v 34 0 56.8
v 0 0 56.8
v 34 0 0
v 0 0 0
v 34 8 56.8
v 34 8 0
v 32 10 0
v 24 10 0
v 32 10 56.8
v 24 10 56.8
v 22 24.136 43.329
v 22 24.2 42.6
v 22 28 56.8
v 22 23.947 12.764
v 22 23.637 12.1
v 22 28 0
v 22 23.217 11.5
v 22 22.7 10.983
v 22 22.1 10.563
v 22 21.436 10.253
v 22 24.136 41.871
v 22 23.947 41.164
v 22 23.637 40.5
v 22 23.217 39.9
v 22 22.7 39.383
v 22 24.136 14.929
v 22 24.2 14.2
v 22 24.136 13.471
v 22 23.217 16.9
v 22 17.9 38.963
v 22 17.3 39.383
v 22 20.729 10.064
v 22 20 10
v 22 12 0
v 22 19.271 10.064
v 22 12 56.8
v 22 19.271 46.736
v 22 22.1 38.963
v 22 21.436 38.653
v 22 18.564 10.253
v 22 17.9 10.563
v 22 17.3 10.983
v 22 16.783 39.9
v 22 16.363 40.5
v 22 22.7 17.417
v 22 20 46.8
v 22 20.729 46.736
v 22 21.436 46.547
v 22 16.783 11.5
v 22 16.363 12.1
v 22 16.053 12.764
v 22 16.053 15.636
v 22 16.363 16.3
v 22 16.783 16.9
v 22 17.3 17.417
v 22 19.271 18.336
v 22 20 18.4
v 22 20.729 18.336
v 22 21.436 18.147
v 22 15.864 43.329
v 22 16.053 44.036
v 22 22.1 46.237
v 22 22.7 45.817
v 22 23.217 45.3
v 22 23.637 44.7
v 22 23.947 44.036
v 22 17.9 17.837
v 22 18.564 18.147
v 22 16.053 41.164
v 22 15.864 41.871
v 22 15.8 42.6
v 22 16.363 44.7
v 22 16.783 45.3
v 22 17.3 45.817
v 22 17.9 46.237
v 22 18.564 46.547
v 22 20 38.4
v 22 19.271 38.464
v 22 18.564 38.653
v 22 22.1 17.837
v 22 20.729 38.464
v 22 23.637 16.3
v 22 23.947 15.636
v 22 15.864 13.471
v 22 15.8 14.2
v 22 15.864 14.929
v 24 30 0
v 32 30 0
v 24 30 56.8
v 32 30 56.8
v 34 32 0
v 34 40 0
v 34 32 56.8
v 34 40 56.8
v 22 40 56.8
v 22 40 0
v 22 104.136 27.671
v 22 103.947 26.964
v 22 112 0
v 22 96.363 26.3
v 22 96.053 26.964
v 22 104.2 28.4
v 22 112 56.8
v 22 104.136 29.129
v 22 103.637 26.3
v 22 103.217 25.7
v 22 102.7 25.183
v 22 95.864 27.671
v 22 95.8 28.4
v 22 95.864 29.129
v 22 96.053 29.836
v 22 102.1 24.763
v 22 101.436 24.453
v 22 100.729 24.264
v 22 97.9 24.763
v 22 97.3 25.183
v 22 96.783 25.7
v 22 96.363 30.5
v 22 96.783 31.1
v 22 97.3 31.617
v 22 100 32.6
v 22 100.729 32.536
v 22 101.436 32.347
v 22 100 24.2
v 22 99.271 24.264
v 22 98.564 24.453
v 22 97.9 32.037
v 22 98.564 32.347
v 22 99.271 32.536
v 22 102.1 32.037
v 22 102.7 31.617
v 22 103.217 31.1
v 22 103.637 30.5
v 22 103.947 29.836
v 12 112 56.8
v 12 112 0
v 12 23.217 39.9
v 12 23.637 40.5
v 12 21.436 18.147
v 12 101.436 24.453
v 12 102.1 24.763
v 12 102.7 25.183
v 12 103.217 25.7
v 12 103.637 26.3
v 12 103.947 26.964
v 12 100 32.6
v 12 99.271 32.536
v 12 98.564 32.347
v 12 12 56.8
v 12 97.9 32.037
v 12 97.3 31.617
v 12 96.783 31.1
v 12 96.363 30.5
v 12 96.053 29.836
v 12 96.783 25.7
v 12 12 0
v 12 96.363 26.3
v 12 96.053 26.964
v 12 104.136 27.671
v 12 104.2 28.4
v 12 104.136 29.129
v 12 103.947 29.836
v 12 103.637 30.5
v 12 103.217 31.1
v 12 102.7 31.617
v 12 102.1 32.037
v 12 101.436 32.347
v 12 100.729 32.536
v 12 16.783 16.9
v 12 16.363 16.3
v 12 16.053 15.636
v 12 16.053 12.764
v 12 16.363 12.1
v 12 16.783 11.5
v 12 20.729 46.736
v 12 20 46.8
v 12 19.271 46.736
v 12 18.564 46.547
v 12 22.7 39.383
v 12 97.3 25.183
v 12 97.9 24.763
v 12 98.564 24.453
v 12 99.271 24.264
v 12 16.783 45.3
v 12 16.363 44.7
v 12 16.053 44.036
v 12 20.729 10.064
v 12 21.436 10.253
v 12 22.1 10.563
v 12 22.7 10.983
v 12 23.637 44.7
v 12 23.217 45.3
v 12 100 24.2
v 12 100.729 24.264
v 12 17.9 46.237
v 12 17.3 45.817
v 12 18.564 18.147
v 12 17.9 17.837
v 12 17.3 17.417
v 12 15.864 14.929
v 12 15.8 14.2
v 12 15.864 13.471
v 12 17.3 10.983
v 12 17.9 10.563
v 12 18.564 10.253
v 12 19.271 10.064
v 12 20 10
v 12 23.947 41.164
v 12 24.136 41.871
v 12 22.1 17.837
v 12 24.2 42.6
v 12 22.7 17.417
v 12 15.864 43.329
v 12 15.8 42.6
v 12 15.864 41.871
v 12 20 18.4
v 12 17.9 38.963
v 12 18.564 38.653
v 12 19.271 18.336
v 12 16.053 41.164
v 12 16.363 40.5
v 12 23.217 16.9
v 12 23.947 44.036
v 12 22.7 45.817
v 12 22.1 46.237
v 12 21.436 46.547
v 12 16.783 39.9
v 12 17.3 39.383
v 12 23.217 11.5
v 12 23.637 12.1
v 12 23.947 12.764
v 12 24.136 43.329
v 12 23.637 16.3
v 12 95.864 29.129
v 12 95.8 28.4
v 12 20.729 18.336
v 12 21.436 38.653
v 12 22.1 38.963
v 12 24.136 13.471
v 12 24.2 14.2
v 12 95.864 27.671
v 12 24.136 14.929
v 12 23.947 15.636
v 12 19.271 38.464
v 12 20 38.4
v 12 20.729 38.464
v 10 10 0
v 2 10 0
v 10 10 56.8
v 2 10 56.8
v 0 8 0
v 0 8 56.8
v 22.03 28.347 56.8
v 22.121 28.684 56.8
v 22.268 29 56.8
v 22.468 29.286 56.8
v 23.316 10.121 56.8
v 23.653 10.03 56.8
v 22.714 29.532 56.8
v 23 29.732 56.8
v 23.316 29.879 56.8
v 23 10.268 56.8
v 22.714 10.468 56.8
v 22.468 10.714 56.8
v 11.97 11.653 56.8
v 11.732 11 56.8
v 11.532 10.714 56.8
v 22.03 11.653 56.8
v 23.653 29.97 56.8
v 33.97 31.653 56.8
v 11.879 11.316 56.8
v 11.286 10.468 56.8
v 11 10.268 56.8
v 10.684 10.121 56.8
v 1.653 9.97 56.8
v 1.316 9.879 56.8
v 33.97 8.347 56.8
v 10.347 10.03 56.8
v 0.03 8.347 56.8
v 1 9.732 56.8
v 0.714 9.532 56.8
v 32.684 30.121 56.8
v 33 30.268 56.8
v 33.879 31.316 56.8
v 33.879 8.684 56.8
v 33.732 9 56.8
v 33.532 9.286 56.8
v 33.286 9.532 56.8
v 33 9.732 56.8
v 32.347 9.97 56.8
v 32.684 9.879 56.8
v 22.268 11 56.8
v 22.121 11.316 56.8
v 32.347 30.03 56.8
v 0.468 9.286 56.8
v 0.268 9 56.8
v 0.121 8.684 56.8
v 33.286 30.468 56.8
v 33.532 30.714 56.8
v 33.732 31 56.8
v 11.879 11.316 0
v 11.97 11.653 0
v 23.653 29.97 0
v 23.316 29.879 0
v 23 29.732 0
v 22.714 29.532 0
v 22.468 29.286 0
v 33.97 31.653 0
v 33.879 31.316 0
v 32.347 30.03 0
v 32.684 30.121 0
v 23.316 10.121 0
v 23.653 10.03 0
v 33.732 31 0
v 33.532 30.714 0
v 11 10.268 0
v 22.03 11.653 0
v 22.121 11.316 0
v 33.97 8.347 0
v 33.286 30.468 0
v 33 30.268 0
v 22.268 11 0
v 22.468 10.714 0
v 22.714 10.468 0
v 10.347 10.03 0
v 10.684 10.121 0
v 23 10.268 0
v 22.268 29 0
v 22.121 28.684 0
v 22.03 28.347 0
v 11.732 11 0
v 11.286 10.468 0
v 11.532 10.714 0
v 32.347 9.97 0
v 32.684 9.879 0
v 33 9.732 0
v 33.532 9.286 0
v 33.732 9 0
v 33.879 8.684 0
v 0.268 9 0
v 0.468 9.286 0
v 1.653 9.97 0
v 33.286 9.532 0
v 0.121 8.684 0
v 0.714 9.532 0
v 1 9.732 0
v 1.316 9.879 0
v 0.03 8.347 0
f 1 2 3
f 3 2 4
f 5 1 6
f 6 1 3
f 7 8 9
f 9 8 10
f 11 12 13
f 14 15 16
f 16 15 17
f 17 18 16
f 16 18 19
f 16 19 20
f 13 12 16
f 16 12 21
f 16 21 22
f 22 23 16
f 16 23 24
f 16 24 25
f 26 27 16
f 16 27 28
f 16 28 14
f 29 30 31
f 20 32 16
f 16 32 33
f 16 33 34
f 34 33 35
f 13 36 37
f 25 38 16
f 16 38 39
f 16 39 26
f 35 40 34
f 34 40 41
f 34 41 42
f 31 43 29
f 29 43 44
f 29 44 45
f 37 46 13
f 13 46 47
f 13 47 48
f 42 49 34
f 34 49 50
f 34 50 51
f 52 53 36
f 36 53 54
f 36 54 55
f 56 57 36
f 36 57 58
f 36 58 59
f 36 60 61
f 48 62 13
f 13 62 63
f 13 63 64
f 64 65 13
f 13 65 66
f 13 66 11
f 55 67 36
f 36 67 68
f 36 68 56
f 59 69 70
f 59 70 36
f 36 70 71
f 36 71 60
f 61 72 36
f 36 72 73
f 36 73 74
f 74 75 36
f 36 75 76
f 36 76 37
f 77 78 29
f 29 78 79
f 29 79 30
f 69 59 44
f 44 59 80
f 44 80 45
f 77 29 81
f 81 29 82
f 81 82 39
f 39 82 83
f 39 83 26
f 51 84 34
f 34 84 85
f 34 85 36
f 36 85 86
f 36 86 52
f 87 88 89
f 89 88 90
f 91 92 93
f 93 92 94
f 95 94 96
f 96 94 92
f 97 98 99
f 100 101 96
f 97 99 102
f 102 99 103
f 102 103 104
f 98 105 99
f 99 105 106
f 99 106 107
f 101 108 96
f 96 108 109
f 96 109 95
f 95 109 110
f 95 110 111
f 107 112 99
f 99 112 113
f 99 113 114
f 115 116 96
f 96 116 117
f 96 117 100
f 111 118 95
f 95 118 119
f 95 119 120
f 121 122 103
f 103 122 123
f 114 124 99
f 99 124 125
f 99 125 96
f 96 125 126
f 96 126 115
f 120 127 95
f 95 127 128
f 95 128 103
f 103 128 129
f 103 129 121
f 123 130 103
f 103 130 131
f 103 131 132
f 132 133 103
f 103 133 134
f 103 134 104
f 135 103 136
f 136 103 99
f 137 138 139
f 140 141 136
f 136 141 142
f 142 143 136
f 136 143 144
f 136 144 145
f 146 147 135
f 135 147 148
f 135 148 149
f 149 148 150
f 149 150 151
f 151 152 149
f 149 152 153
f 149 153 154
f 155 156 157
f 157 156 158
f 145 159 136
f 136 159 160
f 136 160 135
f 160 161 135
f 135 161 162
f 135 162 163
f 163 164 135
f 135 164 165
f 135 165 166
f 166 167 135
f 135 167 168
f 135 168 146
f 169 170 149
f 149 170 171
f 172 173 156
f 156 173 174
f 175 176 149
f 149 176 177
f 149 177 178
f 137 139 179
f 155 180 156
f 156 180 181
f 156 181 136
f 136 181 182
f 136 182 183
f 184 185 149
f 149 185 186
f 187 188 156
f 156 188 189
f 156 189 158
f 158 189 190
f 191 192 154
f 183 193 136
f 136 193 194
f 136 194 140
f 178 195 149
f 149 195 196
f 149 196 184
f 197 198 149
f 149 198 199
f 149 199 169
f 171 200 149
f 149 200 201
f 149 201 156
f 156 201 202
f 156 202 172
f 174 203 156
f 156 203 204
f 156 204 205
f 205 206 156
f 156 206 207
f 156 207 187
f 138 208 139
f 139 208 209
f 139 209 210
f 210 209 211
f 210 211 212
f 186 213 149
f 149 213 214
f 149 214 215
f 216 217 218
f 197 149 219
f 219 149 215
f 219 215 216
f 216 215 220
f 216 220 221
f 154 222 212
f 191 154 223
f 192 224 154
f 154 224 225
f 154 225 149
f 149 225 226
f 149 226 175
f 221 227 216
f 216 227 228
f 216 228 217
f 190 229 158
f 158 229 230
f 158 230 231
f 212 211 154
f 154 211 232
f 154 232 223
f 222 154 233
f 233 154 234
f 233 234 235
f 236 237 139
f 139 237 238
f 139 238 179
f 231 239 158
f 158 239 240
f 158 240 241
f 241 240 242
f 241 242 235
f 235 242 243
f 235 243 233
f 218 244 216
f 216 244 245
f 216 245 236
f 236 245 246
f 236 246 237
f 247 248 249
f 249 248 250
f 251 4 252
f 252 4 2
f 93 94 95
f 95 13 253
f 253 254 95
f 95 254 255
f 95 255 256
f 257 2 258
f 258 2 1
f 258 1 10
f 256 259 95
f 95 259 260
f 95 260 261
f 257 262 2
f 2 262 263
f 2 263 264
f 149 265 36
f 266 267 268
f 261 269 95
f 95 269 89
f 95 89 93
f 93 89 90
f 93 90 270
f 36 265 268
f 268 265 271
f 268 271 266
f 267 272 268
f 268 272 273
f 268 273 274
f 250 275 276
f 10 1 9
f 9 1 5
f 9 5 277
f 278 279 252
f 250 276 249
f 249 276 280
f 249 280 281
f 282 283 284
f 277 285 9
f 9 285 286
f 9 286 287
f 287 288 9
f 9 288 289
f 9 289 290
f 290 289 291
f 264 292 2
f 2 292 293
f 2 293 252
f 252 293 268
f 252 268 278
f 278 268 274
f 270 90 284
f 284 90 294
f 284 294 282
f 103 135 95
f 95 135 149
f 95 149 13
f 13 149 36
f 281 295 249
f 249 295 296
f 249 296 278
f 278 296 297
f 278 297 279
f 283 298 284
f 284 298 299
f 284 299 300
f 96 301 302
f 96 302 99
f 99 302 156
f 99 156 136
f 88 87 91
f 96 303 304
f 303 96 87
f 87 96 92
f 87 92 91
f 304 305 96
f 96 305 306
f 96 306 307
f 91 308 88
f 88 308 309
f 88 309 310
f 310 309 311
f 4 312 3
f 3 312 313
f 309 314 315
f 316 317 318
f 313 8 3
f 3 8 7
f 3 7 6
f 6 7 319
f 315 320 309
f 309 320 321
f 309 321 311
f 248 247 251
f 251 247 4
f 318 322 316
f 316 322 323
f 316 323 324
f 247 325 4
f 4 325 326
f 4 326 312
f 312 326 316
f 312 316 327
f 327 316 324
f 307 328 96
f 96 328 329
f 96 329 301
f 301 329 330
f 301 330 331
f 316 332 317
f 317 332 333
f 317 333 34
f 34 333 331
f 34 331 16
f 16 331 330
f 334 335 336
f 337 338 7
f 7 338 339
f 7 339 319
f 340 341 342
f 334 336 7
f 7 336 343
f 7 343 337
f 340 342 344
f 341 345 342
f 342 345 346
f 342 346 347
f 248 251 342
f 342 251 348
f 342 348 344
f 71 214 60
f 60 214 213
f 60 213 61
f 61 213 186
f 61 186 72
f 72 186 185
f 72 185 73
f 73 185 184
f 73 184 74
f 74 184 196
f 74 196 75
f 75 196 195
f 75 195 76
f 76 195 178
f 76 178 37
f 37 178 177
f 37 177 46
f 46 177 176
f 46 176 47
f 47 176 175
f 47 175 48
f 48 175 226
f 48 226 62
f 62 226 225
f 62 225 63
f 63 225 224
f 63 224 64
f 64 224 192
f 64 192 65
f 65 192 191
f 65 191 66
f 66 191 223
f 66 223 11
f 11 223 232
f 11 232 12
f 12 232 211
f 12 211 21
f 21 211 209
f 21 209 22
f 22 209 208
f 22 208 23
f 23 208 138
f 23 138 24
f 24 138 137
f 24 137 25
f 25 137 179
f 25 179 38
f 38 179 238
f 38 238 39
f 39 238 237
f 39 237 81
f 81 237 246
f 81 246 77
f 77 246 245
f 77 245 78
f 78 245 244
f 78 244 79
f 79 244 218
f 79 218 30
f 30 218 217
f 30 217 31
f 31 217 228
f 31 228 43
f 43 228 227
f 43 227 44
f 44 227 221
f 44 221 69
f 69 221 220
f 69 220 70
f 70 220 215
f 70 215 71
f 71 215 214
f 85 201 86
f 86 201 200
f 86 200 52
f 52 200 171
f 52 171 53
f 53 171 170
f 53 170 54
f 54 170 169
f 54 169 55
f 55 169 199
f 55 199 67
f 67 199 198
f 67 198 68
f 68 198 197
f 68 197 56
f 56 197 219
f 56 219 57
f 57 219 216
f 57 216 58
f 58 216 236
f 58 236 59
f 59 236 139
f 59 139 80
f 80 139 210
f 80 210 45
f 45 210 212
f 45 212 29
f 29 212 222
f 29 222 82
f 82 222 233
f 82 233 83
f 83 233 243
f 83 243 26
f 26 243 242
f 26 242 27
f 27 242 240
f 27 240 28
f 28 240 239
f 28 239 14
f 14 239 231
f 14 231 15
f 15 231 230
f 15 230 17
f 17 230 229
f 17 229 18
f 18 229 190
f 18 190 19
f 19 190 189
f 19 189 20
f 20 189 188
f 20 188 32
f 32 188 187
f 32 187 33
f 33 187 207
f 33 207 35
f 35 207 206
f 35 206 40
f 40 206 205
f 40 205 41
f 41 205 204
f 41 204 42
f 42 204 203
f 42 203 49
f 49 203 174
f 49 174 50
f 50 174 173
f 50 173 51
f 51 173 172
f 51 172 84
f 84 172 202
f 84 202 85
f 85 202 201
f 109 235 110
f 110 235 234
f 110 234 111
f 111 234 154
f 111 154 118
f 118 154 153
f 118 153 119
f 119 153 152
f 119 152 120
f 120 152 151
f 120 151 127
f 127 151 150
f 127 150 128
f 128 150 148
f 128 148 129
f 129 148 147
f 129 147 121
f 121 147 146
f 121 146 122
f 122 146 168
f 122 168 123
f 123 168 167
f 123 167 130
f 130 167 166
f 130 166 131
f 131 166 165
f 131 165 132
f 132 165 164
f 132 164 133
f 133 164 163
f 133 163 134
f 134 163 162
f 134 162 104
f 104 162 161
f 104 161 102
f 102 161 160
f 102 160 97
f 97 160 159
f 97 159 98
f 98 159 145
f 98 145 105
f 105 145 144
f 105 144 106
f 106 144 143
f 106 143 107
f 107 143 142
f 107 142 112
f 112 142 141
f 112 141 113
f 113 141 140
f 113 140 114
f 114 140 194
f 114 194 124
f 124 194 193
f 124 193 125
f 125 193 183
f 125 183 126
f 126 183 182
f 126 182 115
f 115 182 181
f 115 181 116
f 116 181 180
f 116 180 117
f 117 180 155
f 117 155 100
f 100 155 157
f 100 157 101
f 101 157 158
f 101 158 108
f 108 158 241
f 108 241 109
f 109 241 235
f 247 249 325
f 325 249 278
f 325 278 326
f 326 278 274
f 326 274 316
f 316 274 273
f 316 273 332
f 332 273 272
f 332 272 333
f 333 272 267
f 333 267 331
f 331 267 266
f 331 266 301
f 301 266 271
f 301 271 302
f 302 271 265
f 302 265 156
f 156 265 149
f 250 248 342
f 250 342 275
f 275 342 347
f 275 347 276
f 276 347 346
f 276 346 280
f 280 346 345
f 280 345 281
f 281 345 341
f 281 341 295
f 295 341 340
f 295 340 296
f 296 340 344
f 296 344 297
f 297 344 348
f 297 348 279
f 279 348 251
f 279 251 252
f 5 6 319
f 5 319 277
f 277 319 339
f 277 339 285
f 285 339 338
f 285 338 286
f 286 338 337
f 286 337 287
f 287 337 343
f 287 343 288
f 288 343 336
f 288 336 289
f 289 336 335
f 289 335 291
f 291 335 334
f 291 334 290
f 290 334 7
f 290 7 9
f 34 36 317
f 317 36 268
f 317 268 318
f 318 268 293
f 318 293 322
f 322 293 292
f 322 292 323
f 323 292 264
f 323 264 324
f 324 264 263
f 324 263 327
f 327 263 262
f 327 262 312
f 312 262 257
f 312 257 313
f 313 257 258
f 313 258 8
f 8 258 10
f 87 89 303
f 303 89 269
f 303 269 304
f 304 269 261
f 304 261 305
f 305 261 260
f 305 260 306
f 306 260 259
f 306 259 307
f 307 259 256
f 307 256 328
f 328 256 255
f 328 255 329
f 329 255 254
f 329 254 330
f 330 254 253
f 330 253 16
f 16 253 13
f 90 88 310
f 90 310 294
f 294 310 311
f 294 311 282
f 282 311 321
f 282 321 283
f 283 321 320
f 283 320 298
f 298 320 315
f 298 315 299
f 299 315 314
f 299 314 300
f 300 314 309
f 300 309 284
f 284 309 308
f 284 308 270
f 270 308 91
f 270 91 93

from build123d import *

# Parameters (mm, degrees)
BOSS_EXTRUDE1_DEPTH = 56.8
CUT_EXTRUDE1_REACH  = 129.492
SKETCH2_R           = 4.2
CUT_EXTRUDE3_REACH  = 129.492
SKETCH4_R           = 4.2
FILLET1_R           = 2


with BuildPart() as part:
    # Sketch1 → Boss-Extrude1 (new body)
    with BuildSketch(Plane.XY):
        Polygon((0, 0), (0, 10), (12, 10), (12, 112), (22, 112), (22, 40), (34, 40), (34, 30), (22, 30), (22, 10), (34, 10), (34, 0), align=None)
    extrude(amount=BOSS_EXTRUDE1_DEPTH)

    # Sketch2 → Cut-Extrude1 (cut, up to next)
    with BuildSketch(Plane.ZY.offset(-12), mode=Mode.PRIVATE) as cut_extrude1_sk1:
        with Locations(Location((14.2, 20, 0), (0, 0, 270))):
            Circle(SKETCH2_R)
    cut_extrude1_tool1 = extrude(cut_extrude1_sk1.sketch, amount=-CUT_EXTRUDE1_REACH, mode=Mode.PRIVATE) & part.part
    # Sketch2 → Cut-Extrude1 (cut, up to next)
    with BuildSketch(Plane.ZY.offset(-12), mode=Mode.PRIVATE) as cut_extrude1_sk2:
        with Locations(Location((42.6, 20, 0), (0, 0, 270))):
            Circle(SKETCH2_R)
    cut_extrude1_tool2 = extrude(cut_extrude1_sk2.sketch, amount=-CUT_EXTRUDE1_REACH, mode=Mode.PRIVATE) & part.part
    add(cut_extrude1_tool1.solids().sort_by_distance((12, 20, 14.2))[0], mode=Mode.SUBTRACT)
    add(cut_extrude1_tool2.solids().sort_by_distance((12, 20, 42.6))[0], mode=Mode.SUBTRACT)

    # Sketch4 → Cut-Extrude3 (cut, up to next)
    with BuildSketch(Plane.ZY.offset(-12), mode=Mode.PRIVATE) as cut_extrude3_sk1:
        with Locations(Location((28.4, 100, 0), (0, 0, 270))):
            Circle(SKETCH4_R)
    cut_extrude3_tool1 = extrude(cut_extrude3_sk1.sketch, amount=-CUT_EXTRUDE3_REACH, mode=Mode.PRIVATE) & part.part
    add(cut_extrude3_tool1.solids().sort_by_distance((12, 100, 28.4))[0], mode=Mode.SUBTRACT)

    # Fillet1
    fillet1_edges = [part.edges().sort_by_distance(p)[0] for p in [
        (0, 10, 28.4),
        (12, 10, 28.4),
        (34, 30, 28.4),
        (22, 30, 28.4),
        (22, 10, 28.4),
        (34, 10, 28.4),
    ]]
    fillet(fillet1_edges, radius=FILLET1_R)


solid = part.part
